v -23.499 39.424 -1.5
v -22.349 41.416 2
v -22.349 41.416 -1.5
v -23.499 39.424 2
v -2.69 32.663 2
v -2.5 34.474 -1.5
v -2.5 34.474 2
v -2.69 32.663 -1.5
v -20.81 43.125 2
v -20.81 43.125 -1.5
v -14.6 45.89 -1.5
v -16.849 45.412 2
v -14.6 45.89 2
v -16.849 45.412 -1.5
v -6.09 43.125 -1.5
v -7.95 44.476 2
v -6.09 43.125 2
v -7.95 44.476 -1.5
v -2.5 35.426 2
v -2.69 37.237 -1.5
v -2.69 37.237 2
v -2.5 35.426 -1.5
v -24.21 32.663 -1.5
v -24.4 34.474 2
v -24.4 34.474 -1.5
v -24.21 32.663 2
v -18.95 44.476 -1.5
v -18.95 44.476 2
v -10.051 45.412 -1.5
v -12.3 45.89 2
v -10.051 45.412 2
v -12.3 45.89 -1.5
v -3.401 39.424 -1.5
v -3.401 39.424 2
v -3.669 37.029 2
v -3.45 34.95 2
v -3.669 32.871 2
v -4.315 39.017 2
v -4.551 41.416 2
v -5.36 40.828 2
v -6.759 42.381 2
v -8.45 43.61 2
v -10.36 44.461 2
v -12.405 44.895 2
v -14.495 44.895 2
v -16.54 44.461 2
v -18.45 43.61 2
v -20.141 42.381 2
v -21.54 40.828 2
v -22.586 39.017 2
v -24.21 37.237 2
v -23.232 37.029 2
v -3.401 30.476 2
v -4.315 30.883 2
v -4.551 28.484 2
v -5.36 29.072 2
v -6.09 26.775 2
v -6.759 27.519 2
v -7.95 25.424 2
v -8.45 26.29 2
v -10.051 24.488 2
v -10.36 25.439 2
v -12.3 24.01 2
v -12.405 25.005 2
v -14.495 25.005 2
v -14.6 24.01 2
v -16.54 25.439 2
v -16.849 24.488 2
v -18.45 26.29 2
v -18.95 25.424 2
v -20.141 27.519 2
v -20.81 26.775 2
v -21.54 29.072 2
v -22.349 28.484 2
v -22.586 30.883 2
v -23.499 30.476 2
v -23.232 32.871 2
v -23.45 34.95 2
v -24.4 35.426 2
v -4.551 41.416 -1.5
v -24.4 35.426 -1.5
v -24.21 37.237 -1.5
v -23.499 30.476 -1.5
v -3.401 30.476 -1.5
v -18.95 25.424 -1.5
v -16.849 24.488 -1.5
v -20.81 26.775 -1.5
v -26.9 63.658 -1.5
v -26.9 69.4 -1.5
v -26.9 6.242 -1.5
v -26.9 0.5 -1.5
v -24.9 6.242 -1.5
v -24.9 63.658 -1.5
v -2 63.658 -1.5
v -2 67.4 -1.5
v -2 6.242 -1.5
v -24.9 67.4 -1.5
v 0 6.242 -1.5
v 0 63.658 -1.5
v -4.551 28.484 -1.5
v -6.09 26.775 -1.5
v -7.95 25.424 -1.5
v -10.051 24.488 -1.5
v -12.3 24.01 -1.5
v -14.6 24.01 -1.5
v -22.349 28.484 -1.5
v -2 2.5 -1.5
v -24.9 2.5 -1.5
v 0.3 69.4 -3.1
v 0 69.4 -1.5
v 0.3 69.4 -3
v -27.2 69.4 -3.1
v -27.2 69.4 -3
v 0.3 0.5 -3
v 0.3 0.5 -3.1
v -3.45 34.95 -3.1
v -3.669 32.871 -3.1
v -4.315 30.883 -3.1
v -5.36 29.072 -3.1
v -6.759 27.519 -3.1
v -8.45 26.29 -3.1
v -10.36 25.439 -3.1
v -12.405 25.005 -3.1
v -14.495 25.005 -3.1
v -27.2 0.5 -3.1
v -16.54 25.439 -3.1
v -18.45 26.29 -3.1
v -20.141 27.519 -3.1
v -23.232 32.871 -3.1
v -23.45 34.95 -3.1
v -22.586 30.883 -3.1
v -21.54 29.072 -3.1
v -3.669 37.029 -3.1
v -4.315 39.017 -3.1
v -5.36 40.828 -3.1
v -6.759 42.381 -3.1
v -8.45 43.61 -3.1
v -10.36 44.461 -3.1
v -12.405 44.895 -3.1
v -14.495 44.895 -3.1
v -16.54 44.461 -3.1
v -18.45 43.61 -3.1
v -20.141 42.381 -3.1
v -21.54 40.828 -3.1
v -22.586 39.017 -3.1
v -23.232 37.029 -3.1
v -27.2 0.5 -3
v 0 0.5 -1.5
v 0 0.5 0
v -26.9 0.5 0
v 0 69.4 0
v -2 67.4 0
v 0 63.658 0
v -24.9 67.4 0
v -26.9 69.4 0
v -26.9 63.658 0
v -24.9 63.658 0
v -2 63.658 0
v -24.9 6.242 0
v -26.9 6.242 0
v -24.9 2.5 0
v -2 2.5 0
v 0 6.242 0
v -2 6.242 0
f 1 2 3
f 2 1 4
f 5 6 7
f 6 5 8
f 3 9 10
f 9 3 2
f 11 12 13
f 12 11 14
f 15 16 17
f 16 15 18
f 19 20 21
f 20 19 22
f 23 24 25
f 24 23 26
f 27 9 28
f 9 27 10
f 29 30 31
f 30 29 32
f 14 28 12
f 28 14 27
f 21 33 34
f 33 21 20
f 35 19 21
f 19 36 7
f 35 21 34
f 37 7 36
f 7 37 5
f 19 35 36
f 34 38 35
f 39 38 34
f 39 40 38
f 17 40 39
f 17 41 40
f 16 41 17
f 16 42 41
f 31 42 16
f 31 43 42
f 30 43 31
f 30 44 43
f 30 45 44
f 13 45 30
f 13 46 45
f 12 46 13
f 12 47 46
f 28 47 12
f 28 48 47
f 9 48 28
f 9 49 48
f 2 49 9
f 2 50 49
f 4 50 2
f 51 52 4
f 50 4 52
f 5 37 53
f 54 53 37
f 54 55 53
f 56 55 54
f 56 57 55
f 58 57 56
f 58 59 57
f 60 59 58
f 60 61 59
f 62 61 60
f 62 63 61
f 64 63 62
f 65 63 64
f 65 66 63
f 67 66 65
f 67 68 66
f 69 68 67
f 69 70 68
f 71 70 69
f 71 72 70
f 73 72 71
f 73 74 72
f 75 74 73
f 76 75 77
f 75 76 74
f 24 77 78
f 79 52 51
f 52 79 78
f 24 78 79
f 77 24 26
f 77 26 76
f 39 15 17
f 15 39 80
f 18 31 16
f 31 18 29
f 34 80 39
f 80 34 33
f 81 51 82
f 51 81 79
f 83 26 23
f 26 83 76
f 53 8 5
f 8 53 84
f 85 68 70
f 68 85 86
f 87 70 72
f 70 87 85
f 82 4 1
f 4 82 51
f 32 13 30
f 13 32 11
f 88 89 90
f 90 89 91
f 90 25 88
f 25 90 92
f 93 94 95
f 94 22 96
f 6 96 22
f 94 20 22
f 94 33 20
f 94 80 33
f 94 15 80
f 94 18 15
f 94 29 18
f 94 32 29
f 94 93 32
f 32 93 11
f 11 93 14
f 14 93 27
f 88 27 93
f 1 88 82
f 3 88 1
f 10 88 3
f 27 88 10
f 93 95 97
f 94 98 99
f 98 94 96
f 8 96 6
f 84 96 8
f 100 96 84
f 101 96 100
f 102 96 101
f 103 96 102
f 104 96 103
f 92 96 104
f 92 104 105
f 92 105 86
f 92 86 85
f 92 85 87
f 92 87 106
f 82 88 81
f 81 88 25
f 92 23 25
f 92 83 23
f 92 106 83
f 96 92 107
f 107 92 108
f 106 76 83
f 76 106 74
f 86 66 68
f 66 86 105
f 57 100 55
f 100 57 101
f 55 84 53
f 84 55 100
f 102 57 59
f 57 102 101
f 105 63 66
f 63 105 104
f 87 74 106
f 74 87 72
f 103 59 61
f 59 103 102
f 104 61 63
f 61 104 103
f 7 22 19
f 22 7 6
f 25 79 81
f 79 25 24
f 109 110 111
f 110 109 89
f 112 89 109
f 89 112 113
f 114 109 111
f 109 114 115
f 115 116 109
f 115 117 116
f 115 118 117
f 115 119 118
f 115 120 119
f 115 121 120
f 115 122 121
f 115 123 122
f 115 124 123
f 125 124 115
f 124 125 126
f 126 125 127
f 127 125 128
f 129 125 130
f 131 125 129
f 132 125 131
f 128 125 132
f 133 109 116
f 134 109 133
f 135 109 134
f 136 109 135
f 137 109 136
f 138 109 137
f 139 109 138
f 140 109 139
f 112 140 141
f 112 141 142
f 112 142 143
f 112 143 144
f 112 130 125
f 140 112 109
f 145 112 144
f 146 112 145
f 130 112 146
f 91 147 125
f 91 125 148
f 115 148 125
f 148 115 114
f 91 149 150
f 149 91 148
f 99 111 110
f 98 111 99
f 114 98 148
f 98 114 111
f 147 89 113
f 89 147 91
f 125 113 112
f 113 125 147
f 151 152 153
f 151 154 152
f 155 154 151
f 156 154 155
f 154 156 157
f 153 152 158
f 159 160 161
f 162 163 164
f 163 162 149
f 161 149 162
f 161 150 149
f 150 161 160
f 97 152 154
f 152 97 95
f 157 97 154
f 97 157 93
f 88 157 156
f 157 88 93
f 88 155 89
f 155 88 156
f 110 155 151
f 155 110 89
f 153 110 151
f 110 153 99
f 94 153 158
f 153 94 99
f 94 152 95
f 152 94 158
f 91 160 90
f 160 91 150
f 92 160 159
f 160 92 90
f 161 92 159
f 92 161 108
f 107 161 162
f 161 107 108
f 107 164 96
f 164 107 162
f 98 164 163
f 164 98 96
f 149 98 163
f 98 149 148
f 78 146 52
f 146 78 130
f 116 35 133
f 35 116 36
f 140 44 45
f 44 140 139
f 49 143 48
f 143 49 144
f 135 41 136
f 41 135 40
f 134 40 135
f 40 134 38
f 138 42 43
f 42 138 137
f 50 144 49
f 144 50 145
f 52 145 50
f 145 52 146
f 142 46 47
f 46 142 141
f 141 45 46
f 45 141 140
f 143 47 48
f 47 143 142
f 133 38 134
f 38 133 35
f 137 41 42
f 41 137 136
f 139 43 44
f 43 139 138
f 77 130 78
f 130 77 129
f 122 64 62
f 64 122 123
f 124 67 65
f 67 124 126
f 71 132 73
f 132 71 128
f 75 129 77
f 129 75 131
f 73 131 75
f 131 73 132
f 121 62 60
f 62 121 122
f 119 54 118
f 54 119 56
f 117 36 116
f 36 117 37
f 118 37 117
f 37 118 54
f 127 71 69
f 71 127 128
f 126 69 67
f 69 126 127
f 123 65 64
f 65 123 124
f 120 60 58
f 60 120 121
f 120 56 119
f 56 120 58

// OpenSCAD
/* Diffuser Lense For A Particular Project (OpenSCAD) */
tol = 0.1;

/* LED PCB */
holedia   = 16;

/* Diffuser spec */
thickness = 1.5;
standoff = 1.5;
holediffuser = holedia+4;

/* Camera Chamber */
camchamberw_org = 27;
camchamberh_org = 70;

camchamberw = camchamberw_org - tol;
camchamberh = camchamberh_org - tol -1;



/* Enclosure hole */
enclosurew = 19;

rotate([0,180])
{

/* Diffuser */
translate([0, 1/2, 0])
difference()
{
  union()
  {

    // Diffuser Body
    translate([0, 0, standoff])
    {
      hull()
      {
        translate([0, 0, 0])
          cube([camchamberw,camchamberh,0.1], center = false);
        translate([-0.6/2, 0, thickness])
          cube([camchamberw+0.6,camchamberh,0.1], center = false);
      }
    }
    
    // Standoff
    linear_extrude(height = standoff) 
    {
       difference() 
      {
       offset(r = 0) 
        square(size = [camchamberw,camchamberh], center = false);
       offset(r = -2) 
        square(size = [camchamberw,camchamberh], center = false);
       translate([camchamberw/2, camchamberh/2, 0])
        square(size = [camchamberw,camchamberh*5/6], center = true);
      }
    }
    difference()
    {
      translate([camchamberw/2,camchamberh/2,-2])
        cylinder(standoff+2,d=holediffuser+2);
      translate([0,0,-3])
        linear_extrude(height = standoff+3)
        {
          difference() 
          {
           offset(r = 0) 
            square(size = [camchamberw,camchamberh], center = false);
           offset(r = -2.5) 
            square(size = [camchamberw,camchamberh], center = false);
          }
        }
    }
  }
  translate([camchamberw/2,camchamberh/2,-thickness/2-2])
    cylinder((standoff+thickness+2)*2,d=holediffuser);
}

/* Camera Frame Model */
%translate([-tol/2,-tol/2,-2])
union()
{
  %linear_extrude(height = 2) 
  {
     difference() 
    {
       offset(r = 0) 
        square(size = [camchamberw_org,camchamberh_org], center = false);
       offset(r = -2) 
        square(size = [camchamberw_org,camchamberh_org], center = false);
     }
  }
  %translate([camchamberw_org/2,camchamberh_org/2,-thickness/2])
     cylinder(thickness,d=holedia);
}

}
